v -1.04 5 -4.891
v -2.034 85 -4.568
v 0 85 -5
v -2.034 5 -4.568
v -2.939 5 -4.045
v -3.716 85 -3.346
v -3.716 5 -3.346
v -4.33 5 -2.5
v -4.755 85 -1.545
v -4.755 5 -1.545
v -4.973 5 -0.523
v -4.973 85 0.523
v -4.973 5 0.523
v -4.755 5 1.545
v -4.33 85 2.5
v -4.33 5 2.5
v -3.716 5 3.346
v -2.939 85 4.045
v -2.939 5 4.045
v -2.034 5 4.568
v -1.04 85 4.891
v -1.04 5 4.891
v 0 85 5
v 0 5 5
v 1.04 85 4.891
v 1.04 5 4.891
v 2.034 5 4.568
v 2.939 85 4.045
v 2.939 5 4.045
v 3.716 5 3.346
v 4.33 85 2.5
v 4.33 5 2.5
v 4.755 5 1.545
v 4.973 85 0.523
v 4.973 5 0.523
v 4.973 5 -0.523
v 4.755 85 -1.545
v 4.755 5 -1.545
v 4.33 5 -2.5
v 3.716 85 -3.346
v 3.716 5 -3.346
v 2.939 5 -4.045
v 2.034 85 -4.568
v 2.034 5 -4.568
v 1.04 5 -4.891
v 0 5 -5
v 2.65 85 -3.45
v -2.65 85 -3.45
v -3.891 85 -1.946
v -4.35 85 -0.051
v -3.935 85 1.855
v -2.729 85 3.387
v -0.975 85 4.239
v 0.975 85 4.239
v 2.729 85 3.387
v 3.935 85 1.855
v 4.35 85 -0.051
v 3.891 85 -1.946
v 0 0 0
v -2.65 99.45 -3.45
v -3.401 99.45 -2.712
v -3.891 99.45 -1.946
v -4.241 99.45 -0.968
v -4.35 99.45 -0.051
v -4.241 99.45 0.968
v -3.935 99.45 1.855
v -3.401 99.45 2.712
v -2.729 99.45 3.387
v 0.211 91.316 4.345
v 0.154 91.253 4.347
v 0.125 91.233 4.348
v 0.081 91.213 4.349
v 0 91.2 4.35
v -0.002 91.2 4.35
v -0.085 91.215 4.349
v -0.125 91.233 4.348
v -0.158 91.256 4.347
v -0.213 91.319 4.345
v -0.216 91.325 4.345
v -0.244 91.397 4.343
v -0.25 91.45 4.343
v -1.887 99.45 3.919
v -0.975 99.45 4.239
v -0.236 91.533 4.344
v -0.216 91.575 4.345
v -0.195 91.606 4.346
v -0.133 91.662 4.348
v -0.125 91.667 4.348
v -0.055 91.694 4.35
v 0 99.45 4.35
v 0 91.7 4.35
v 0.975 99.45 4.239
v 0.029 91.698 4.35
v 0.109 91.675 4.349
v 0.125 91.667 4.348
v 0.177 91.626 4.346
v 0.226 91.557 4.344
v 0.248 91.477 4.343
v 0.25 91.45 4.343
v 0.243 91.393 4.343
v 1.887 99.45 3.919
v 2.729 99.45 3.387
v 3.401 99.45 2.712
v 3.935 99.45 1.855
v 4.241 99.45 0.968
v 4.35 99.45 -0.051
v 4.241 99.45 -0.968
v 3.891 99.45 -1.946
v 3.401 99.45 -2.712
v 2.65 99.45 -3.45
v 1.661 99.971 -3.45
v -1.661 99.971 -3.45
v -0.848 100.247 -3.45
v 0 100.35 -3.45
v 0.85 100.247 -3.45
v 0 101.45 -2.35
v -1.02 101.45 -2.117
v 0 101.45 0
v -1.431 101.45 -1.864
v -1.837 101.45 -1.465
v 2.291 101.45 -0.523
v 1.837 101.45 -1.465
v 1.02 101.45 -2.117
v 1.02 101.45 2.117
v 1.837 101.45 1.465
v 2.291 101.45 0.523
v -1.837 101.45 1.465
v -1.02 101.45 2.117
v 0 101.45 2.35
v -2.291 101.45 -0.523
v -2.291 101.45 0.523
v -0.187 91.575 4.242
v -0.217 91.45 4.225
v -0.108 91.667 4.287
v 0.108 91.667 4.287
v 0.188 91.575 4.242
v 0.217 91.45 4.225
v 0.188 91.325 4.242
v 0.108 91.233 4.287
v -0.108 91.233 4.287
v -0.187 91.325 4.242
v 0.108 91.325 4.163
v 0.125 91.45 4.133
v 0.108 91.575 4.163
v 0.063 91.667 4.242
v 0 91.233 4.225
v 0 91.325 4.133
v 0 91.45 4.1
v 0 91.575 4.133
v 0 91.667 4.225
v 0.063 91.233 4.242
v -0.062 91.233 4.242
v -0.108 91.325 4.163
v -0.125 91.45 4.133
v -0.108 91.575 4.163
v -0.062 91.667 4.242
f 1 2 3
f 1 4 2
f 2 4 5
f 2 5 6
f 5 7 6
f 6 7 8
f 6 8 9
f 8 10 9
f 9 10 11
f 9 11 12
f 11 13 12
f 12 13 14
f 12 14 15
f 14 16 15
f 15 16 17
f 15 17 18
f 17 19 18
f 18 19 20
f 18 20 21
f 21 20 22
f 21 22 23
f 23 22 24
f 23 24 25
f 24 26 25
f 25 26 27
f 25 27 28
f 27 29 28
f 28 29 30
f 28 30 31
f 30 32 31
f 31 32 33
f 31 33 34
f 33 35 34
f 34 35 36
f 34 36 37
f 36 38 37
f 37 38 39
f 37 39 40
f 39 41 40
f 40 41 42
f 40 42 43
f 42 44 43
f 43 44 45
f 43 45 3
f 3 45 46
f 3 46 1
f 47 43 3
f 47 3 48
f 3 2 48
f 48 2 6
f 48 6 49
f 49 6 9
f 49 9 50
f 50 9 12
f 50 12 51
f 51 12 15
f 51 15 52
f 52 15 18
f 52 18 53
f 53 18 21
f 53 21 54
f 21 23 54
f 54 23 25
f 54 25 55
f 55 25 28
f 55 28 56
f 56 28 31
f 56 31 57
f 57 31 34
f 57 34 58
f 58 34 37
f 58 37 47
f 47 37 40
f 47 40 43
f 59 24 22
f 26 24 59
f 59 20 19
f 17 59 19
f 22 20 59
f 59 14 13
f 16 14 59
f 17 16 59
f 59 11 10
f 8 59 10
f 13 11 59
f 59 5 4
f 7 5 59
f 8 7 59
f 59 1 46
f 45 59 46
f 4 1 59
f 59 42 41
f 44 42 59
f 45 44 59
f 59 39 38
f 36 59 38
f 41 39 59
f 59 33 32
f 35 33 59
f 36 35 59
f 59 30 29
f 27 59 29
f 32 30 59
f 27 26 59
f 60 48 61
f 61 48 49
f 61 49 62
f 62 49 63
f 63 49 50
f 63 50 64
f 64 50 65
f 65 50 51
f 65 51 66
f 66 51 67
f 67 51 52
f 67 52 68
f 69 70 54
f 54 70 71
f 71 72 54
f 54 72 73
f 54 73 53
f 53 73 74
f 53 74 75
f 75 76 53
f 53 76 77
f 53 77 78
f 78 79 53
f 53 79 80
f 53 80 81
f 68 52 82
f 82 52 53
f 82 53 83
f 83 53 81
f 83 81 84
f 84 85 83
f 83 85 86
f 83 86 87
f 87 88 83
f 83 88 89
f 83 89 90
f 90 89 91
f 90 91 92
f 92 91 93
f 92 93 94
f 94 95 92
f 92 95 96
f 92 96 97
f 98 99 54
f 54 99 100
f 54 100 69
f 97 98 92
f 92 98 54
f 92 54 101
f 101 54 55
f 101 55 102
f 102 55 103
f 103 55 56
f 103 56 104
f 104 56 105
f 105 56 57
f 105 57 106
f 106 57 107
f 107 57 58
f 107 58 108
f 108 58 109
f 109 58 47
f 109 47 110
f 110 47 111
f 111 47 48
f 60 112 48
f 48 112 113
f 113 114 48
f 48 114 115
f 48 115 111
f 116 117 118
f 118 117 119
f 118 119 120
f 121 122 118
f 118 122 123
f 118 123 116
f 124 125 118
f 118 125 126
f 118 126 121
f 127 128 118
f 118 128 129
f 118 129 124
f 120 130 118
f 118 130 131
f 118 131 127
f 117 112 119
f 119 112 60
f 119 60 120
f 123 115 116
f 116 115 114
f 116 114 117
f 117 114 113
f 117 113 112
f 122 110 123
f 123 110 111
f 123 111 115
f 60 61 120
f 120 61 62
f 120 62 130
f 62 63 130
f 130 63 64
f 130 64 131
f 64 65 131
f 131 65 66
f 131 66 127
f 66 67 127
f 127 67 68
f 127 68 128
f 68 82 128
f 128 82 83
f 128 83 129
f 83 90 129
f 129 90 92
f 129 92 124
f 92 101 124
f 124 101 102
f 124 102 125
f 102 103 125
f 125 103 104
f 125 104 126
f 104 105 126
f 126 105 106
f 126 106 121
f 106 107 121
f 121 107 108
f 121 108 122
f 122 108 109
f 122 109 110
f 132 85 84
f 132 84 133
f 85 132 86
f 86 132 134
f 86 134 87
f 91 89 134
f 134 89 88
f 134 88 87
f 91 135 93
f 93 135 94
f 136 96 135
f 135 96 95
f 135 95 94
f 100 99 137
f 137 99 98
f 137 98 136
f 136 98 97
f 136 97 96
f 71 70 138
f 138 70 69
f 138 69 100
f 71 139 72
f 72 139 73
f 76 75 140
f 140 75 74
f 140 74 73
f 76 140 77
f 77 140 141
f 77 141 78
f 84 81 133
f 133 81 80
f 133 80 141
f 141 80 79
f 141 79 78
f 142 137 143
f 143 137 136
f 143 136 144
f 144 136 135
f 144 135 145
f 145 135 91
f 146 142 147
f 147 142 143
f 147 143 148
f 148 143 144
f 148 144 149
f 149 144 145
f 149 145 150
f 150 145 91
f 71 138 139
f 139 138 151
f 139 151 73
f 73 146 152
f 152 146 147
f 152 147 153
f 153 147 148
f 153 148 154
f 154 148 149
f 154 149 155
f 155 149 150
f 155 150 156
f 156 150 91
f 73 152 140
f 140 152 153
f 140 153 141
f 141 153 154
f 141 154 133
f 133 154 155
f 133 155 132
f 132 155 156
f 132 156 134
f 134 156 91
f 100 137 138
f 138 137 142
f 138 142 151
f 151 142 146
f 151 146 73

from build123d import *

# Parameters (mm, degrees)
SKETCH1_R           = 5
BOSS_EXTRUDE1_DEPTH = 85
CHAMFER1_SIZE       = 5
BOSS_EXTRUDE2_DEPTH = 16.45


with BuildPart() as part:
    # Sketch1 → Boss-Extrude1 (new body)
    with BuildSketch(Plane(origin=(0, 0, 0), x_dir=(1, 0, 0), z_dir=(0, 1, 0))):
        with Locations(Location((0, 0, 0), (0, 0, 270))):
            Circle(SKETCH1_R)
    extrude(amount=BOSS_EXTRUDE1_DEPTH)

    # Chamfer1
    chamfer1_edges = [part.edges().sort_by_distance(p)[0] for p in [
        (0, 0, -5),
    ]]
    chamfer(chamfer1_edges, length=CHAMFER1_SIZE)

    # Sketch2 → Boss-Extrude2 (add)
    with BuildSketch(Plane(origin=(0, 85, 0), x_dir=(1, 0, 0), z_dir=(0, 1, 0))):
        with BuildLine():
            Line((-2.64952826, 3.45), (2.64952826, 3.45))
            ThreePointArc((2.64952826, 3.45), (0, -4.35), (-2.64952826, 3.45))
        make_face()
    extrude(amount=BOSS_EXTRUDE2_DEPTH)

    # Chamfer2: read off the stored shape, not the designer's step
    # Chamfer2 outline → Chamfer2 (revolve, cut)
    with BuildSketch(Plane.XY):
        Polygon((4.35, 101.45), (2.35, 101.45), (4.35, 99.45), align=None)
    revolve(axis=Axis((0, 0, 0), (0, 1, 0)), mode=Mode.SUBTRACT)

    # Sketch3 → Cut-Revolve1 (revolve, cut)
    with BuildSketch(Plane(origin=(0, 0, 0), x_dir=(0, 0, -1), z_dir=(1, 0, 0))):
        with BuildLine():
            Line((-4.35, 91.2), (-4.35, 91.7))
            ThreePointArc((-4.35, 91.7), (-4.1, 91.45), (-4.35, 91.2))
        make_face()
    revolve(axis=Axis((0, 91.2, 4.35), (0, 1, 0)), mode=Mode.SUBTRACT)


solid = part.part
